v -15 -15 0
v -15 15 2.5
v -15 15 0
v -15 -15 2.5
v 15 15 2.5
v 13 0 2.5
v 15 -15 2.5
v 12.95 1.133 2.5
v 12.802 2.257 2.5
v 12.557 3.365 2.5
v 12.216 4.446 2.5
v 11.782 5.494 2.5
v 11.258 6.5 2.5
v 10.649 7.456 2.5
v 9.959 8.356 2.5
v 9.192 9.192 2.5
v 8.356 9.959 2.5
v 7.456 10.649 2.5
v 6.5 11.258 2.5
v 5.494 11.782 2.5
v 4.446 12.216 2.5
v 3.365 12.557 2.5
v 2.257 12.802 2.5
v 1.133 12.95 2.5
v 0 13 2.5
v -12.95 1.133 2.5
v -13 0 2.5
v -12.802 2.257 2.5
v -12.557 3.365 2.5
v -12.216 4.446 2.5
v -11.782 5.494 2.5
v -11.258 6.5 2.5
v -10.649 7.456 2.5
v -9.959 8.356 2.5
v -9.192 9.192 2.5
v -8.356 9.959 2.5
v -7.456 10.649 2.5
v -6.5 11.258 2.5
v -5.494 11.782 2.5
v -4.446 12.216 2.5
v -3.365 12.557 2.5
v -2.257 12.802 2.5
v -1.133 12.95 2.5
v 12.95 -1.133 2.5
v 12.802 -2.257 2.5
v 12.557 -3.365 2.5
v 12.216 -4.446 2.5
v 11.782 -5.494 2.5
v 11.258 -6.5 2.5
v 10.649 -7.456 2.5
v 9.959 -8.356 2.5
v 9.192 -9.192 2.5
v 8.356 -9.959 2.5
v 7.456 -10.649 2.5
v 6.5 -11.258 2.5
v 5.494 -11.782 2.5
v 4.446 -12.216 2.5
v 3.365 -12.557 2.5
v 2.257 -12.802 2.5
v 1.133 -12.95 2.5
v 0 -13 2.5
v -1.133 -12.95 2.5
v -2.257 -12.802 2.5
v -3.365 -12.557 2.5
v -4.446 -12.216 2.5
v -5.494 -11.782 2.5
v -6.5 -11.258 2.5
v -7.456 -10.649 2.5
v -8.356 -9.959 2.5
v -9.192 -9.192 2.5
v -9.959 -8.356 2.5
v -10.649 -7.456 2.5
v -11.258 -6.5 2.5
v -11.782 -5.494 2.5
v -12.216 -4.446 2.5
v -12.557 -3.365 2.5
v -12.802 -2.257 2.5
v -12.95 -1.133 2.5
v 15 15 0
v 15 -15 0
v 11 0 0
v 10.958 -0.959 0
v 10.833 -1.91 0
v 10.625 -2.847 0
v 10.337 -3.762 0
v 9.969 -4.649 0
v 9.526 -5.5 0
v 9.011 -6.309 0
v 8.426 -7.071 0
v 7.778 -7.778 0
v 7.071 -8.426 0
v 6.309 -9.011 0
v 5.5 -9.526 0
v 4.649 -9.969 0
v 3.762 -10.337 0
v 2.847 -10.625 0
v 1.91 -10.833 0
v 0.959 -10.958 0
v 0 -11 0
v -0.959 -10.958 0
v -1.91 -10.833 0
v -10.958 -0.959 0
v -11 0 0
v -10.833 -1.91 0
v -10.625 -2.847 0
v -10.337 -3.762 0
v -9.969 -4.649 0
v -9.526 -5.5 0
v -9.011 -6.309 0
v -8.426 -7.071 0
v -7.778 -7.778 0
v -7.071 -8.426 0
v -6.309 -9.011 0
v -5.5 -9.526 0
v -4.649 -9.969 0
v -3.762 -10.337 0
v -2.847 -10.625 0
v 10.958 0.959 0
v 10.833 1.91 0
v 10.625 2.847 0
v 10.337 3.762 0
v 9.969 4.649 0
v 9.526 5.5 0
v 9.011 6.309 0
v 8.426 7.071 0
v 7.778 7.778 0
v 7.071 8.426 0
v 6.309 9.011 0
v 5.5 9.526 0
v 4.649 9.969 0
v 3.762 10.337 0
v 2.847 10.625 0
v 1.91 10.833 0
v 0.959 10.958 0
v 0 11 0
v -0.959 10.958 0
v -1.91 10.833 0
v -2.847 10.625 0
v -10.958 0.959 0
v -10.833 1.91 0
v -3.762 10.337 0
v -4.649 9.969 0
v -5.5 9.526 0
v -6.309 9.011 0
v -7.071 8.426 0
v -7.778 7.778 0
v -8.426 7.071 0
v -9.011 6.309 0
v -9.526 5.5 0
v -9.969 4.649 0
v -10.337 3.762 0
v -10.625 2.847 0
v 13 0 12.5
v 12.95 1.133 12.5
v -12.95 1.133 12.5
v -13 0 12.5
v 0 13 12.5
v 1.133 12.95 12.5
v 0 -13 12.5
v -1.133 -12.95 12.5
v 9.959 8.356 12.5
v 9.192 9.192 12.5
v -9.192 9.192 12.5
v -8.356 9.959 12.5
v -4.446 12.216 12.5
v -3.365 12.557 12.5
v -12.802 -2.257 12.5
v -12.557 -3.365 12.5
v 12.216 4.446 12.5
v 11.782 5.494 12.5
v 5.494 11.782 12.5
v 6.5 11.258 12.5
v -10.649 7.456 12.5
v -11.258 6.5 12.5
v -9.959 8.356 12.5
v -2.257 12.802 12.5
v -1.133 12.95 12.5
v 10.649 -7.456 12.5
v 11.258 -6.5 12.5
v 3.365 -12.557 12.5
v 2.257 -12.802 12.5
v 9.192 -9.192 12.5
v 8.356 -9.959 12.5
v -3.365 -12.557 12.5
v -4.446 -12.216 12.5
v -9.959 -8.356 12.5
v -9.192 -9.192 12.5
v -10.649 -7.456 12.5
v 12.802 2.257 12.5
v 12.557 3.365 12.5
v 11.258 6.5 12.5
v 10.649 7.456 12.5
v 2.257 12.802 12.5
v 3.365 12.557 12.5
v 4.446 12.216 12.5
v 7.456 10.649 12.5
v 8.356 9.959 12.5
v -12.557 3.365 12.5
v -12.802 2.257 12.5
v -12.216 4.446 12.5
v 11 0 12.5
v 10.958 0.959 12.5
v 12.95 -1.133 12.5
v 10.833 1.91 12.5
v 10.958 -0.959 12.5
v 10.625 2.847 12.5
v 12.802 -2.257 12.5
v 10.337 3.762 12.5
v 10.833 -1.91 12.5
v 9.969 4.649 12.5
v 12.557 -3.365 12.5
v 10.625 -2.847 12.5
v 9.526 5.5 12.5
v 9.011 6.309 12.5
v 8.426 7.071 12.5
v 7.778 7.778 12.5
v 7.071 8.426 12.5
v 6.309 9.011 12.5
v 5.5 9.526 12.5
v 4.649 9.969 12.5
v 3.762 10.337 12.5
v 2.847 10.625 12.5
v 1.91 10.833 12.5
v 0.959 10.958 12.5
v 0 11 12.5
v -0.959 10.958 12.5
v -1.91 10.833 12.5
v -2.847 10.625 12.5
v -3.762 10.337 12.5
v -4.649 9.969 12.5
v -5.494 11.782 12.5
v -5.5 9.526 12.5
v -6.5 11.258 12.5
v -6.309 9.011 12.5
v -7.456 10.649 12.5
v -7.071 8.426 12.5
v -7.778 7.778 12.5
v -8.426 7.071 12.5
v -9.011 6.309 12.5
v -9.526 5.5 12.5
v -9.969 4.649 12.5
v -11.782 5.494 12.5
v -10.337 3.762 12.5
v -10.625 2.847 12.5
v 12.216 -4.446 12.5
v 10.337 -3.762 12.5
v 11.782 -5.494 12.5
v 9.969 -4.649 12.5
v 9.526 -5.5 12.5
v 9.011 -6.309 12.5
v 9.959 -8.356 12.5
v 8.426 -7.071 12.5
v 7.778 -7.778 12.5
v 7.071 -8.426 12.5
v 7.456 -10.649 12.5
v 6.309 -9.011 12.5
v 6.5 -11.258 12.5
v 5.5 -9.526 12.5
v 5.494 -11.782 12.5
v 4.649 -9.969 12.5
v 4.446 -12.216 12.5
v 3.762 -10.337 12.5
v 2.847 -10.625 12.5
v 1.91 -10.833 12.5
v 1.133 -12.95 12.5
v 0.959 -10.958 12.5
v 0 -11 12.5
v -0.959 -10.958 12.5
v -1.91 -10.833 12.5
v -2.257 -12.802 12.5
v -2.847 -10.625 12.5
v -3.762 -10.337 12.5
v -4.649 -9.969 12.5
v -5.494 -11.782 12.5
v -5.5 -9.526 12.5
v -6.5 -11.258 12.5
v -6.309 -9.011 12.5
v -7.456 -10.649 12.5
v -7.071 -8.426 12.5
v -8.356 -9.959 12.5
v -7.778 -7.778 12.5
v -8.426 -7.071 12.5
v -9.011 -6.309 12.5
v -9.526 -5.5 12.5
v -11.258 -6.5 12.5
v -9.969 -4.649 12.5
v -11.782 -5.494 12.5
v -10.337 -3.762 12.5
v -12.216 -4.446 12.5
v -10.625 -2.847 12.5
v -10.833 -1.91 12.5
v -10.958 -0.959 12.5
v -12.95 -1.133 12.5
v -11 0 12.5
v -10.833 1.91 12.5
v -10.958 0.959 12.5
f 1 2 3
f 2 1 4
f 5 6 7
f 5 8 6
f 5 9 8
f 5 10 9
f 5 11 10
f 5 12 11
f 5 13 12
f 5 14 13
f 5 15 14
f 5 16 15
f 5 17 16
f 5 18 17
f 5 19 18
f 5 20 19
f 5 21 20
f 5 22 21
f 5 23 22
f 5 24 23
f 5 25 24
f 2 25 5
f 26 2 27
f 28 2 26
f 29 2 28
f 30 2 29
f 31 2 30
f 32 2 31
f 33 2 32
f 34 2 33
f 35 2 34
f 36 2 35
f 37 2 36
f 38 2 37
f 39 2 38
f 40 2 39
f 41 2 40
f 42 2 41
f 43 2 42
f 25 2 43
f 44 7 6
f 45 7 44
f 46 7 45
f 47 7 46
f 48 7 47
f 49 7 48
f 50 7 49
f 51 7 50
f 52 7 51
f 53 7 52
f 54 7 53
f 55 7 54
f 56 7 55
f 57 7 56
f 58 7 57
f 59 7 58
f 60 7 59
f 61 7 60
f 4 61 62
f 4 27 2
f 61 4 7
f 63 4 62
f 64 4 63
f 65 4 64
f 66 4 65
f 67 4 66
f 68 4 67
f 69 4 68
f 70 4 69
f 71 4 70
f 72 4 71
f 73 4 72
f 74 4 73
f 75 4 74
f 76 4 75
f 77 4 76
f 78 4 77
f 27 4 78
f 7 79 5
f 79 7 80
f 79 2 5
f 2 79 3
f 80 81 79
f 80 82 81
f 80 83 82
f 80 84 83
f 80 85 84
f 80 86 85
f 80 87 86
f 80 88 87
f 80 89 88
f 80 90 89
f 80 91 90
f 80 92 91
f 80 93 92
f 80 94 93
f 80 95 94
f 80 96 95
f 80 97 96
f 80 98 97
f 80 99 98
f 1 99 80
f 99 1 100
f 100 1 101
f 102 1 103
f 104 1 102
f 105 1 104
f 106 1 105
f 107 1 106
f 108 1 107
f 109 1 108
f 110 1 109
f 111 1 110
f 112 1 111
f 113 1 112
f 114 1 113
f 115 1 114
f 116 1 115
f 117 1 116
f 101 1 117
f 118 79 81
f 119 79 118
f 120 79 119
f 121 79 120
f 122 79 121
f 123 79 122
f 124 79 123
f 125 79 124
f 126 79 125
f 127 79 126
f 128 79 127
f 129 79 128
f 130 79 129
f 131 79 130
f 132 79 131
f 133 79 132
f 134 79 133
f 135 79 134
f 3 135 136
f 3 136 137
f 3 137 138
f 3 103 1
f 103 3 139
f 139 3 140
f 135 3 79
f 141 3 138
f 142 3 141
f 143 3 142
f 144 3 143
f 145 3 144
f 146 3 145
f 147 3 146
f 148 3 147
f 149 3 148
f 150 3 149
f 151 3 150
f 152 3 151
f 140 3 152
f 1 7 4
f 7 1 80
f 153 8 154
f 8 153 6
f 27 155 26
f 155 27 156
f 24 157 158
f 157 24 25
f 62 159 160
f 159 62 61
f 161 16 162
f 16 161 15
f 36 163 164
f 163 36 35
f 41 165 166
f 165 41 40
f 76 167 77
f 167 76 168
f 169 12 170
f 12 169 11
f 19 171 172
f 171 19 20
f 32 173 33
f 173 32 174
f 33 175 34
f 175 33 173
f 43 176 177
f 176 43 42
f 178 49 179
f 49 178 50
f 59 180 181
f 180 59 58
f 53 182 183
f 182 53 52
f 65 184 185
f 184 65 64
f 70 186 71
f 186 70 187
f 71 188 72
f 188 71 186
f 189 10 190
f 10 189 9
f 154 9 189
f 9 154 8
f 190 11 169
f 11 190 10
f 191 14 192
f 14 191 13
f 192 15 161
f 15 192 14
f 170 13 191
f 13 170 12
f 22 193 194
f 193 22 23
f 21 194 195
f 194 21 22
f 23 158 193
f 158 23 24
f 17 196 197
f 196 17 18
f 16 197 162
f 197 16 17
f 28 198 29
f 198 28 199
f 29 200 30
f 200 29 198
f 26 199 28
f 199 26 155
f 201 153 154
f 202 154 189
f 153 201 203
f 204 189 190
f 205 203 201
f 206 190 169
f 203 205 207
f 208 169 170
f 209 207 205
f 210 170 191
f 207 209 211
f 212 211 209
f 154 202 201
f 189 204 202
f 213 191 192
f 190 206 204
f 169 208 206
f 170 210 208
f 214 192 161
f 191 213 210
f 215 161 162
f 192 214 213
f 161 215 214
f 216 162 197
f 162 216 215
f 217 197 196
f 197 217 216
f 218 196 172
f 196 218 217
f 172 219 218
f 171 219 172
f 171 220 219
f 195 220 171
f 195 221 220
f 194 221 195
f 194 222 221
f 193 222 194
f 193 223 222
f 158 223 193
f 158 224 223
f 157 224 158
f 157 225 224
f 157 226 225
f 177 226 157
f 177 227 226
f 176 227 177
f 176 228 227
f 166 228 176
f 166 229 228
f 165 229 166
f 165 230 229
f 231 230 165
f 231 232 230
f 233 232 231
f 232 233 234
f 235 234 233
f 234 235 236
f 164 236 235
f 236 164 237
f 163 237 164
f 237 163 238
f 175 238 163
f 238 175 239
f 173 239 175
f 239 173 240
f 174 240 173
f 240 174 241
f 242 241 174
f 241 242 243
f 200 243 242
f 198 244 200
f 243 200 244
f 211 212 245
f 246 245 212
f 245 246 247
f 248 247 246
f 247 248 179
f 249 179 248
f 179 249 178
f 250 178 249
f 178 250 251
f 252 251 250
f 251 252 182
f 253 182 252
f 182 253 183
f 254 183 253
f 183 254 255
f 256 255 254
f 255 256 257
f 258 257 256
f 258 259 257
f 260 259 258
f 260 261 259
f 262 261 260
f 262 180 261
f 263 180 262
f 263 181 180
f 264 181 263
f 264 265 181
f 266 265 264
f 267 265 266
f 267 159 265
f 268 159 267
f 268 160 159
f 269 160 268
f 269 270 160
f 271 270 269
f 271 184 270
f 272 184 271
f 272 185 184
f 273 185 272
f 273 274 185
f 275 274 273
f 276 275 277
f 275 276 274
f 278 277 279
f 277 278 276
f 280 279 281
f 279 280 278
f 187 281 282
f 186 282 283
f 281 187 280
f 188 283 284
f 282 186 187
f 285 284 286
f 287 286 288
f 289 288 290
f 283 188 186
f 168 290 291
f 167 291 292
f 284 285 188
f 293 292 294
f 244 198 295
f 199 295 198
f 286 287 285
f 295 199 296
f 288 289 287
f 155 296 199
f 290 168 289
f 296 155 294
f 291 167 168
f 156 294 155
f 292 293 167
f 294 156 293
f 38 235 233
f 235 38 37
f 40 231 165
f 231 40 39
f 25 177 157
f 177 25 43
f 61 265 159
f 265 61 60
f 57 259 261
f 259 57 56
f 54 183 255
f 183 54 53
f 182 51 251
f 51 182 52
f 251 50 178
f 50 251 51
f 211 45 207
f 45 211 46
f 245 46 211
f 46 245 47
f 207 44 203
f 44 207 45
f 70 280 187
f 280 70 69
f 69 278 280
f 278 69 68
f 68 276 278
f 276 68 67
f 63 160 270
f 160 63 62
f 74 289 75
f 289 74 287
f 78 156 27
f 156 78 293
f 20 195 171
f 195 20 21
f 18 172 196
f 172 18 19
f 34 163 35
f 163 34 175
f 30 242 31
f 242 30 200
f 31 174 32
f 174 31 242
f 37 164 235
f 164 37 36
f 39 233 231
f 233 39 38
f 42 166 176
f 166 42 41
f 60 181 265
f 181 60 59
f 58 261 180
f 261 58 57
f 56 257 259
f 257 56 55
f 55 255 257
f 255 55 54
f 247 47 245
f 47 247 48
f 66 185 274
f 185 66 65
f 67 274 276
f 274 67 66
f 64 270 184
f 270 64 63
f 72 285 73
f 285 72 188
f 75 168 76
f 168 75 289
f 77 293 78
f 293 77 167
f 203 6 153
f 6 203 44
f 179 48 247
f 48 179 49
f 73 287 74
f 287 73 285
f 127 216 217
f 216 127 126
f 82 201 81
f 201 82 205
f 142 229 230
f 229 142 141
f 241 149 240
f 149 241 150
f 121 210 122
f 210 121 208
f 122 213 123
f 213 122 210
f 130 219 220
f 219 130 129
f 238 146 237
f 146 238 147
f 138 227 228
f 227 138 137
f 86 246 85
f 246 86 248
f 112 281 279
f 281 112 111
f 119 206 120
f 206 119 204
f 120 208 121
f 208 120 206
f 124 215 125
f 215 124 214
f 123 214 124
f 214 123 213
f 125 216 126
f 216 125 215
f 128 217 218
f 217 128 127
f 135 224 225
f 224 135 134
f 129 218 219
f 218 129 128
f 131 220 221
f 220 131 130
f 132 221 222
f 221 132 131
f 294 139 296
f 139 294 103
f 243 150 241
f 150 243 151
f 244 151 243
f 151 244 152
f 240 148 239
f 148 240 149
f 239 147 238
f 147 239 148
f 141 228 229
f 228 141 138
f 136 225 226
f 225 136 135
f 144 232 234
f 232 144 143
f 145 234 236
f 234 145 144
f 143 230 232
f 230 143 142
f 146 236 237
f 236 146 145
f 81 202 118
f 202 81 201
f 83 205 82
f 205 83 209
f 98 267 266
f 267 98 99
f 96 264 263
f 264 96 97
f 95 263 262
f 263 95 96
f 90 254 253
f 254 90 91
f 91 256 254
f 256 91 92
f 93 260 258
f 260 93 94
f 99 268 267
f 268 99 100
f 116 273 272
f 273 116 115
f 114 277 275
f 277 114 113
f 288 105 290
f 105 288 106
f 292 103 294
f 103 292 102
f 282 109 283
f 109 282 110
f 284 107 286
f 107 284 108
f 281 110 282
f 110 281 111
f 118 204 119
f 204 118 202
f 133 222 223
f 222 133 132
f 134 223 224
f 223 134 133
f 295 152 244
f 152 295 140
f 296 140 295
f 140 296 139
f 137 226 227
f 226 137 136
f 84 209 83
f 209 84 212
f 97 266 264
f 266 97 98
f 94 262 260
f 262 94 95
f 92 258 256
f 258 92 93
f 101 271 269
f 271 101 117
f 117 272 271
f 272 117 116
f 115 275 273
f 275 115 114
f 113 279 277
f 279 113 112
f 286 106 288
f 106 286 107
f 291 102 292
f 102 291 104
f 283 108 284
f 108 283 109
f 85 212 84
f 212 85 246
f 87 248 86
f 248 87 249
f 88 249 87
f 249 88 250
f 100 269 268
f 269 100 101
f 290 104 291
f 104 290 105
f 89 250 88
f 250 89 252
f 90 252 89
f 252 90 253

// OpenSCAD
$fn = 72;

separator();

module separator()
{
	difference()
	{
		union()
		{
			translate([0, 0, 1.25])
			cube([30, 30, 2.5], center=true);
			
			cylinder(d=26, h=12.5);
		}
		
		cylinder(d=22, h=12.5);
	}
}
